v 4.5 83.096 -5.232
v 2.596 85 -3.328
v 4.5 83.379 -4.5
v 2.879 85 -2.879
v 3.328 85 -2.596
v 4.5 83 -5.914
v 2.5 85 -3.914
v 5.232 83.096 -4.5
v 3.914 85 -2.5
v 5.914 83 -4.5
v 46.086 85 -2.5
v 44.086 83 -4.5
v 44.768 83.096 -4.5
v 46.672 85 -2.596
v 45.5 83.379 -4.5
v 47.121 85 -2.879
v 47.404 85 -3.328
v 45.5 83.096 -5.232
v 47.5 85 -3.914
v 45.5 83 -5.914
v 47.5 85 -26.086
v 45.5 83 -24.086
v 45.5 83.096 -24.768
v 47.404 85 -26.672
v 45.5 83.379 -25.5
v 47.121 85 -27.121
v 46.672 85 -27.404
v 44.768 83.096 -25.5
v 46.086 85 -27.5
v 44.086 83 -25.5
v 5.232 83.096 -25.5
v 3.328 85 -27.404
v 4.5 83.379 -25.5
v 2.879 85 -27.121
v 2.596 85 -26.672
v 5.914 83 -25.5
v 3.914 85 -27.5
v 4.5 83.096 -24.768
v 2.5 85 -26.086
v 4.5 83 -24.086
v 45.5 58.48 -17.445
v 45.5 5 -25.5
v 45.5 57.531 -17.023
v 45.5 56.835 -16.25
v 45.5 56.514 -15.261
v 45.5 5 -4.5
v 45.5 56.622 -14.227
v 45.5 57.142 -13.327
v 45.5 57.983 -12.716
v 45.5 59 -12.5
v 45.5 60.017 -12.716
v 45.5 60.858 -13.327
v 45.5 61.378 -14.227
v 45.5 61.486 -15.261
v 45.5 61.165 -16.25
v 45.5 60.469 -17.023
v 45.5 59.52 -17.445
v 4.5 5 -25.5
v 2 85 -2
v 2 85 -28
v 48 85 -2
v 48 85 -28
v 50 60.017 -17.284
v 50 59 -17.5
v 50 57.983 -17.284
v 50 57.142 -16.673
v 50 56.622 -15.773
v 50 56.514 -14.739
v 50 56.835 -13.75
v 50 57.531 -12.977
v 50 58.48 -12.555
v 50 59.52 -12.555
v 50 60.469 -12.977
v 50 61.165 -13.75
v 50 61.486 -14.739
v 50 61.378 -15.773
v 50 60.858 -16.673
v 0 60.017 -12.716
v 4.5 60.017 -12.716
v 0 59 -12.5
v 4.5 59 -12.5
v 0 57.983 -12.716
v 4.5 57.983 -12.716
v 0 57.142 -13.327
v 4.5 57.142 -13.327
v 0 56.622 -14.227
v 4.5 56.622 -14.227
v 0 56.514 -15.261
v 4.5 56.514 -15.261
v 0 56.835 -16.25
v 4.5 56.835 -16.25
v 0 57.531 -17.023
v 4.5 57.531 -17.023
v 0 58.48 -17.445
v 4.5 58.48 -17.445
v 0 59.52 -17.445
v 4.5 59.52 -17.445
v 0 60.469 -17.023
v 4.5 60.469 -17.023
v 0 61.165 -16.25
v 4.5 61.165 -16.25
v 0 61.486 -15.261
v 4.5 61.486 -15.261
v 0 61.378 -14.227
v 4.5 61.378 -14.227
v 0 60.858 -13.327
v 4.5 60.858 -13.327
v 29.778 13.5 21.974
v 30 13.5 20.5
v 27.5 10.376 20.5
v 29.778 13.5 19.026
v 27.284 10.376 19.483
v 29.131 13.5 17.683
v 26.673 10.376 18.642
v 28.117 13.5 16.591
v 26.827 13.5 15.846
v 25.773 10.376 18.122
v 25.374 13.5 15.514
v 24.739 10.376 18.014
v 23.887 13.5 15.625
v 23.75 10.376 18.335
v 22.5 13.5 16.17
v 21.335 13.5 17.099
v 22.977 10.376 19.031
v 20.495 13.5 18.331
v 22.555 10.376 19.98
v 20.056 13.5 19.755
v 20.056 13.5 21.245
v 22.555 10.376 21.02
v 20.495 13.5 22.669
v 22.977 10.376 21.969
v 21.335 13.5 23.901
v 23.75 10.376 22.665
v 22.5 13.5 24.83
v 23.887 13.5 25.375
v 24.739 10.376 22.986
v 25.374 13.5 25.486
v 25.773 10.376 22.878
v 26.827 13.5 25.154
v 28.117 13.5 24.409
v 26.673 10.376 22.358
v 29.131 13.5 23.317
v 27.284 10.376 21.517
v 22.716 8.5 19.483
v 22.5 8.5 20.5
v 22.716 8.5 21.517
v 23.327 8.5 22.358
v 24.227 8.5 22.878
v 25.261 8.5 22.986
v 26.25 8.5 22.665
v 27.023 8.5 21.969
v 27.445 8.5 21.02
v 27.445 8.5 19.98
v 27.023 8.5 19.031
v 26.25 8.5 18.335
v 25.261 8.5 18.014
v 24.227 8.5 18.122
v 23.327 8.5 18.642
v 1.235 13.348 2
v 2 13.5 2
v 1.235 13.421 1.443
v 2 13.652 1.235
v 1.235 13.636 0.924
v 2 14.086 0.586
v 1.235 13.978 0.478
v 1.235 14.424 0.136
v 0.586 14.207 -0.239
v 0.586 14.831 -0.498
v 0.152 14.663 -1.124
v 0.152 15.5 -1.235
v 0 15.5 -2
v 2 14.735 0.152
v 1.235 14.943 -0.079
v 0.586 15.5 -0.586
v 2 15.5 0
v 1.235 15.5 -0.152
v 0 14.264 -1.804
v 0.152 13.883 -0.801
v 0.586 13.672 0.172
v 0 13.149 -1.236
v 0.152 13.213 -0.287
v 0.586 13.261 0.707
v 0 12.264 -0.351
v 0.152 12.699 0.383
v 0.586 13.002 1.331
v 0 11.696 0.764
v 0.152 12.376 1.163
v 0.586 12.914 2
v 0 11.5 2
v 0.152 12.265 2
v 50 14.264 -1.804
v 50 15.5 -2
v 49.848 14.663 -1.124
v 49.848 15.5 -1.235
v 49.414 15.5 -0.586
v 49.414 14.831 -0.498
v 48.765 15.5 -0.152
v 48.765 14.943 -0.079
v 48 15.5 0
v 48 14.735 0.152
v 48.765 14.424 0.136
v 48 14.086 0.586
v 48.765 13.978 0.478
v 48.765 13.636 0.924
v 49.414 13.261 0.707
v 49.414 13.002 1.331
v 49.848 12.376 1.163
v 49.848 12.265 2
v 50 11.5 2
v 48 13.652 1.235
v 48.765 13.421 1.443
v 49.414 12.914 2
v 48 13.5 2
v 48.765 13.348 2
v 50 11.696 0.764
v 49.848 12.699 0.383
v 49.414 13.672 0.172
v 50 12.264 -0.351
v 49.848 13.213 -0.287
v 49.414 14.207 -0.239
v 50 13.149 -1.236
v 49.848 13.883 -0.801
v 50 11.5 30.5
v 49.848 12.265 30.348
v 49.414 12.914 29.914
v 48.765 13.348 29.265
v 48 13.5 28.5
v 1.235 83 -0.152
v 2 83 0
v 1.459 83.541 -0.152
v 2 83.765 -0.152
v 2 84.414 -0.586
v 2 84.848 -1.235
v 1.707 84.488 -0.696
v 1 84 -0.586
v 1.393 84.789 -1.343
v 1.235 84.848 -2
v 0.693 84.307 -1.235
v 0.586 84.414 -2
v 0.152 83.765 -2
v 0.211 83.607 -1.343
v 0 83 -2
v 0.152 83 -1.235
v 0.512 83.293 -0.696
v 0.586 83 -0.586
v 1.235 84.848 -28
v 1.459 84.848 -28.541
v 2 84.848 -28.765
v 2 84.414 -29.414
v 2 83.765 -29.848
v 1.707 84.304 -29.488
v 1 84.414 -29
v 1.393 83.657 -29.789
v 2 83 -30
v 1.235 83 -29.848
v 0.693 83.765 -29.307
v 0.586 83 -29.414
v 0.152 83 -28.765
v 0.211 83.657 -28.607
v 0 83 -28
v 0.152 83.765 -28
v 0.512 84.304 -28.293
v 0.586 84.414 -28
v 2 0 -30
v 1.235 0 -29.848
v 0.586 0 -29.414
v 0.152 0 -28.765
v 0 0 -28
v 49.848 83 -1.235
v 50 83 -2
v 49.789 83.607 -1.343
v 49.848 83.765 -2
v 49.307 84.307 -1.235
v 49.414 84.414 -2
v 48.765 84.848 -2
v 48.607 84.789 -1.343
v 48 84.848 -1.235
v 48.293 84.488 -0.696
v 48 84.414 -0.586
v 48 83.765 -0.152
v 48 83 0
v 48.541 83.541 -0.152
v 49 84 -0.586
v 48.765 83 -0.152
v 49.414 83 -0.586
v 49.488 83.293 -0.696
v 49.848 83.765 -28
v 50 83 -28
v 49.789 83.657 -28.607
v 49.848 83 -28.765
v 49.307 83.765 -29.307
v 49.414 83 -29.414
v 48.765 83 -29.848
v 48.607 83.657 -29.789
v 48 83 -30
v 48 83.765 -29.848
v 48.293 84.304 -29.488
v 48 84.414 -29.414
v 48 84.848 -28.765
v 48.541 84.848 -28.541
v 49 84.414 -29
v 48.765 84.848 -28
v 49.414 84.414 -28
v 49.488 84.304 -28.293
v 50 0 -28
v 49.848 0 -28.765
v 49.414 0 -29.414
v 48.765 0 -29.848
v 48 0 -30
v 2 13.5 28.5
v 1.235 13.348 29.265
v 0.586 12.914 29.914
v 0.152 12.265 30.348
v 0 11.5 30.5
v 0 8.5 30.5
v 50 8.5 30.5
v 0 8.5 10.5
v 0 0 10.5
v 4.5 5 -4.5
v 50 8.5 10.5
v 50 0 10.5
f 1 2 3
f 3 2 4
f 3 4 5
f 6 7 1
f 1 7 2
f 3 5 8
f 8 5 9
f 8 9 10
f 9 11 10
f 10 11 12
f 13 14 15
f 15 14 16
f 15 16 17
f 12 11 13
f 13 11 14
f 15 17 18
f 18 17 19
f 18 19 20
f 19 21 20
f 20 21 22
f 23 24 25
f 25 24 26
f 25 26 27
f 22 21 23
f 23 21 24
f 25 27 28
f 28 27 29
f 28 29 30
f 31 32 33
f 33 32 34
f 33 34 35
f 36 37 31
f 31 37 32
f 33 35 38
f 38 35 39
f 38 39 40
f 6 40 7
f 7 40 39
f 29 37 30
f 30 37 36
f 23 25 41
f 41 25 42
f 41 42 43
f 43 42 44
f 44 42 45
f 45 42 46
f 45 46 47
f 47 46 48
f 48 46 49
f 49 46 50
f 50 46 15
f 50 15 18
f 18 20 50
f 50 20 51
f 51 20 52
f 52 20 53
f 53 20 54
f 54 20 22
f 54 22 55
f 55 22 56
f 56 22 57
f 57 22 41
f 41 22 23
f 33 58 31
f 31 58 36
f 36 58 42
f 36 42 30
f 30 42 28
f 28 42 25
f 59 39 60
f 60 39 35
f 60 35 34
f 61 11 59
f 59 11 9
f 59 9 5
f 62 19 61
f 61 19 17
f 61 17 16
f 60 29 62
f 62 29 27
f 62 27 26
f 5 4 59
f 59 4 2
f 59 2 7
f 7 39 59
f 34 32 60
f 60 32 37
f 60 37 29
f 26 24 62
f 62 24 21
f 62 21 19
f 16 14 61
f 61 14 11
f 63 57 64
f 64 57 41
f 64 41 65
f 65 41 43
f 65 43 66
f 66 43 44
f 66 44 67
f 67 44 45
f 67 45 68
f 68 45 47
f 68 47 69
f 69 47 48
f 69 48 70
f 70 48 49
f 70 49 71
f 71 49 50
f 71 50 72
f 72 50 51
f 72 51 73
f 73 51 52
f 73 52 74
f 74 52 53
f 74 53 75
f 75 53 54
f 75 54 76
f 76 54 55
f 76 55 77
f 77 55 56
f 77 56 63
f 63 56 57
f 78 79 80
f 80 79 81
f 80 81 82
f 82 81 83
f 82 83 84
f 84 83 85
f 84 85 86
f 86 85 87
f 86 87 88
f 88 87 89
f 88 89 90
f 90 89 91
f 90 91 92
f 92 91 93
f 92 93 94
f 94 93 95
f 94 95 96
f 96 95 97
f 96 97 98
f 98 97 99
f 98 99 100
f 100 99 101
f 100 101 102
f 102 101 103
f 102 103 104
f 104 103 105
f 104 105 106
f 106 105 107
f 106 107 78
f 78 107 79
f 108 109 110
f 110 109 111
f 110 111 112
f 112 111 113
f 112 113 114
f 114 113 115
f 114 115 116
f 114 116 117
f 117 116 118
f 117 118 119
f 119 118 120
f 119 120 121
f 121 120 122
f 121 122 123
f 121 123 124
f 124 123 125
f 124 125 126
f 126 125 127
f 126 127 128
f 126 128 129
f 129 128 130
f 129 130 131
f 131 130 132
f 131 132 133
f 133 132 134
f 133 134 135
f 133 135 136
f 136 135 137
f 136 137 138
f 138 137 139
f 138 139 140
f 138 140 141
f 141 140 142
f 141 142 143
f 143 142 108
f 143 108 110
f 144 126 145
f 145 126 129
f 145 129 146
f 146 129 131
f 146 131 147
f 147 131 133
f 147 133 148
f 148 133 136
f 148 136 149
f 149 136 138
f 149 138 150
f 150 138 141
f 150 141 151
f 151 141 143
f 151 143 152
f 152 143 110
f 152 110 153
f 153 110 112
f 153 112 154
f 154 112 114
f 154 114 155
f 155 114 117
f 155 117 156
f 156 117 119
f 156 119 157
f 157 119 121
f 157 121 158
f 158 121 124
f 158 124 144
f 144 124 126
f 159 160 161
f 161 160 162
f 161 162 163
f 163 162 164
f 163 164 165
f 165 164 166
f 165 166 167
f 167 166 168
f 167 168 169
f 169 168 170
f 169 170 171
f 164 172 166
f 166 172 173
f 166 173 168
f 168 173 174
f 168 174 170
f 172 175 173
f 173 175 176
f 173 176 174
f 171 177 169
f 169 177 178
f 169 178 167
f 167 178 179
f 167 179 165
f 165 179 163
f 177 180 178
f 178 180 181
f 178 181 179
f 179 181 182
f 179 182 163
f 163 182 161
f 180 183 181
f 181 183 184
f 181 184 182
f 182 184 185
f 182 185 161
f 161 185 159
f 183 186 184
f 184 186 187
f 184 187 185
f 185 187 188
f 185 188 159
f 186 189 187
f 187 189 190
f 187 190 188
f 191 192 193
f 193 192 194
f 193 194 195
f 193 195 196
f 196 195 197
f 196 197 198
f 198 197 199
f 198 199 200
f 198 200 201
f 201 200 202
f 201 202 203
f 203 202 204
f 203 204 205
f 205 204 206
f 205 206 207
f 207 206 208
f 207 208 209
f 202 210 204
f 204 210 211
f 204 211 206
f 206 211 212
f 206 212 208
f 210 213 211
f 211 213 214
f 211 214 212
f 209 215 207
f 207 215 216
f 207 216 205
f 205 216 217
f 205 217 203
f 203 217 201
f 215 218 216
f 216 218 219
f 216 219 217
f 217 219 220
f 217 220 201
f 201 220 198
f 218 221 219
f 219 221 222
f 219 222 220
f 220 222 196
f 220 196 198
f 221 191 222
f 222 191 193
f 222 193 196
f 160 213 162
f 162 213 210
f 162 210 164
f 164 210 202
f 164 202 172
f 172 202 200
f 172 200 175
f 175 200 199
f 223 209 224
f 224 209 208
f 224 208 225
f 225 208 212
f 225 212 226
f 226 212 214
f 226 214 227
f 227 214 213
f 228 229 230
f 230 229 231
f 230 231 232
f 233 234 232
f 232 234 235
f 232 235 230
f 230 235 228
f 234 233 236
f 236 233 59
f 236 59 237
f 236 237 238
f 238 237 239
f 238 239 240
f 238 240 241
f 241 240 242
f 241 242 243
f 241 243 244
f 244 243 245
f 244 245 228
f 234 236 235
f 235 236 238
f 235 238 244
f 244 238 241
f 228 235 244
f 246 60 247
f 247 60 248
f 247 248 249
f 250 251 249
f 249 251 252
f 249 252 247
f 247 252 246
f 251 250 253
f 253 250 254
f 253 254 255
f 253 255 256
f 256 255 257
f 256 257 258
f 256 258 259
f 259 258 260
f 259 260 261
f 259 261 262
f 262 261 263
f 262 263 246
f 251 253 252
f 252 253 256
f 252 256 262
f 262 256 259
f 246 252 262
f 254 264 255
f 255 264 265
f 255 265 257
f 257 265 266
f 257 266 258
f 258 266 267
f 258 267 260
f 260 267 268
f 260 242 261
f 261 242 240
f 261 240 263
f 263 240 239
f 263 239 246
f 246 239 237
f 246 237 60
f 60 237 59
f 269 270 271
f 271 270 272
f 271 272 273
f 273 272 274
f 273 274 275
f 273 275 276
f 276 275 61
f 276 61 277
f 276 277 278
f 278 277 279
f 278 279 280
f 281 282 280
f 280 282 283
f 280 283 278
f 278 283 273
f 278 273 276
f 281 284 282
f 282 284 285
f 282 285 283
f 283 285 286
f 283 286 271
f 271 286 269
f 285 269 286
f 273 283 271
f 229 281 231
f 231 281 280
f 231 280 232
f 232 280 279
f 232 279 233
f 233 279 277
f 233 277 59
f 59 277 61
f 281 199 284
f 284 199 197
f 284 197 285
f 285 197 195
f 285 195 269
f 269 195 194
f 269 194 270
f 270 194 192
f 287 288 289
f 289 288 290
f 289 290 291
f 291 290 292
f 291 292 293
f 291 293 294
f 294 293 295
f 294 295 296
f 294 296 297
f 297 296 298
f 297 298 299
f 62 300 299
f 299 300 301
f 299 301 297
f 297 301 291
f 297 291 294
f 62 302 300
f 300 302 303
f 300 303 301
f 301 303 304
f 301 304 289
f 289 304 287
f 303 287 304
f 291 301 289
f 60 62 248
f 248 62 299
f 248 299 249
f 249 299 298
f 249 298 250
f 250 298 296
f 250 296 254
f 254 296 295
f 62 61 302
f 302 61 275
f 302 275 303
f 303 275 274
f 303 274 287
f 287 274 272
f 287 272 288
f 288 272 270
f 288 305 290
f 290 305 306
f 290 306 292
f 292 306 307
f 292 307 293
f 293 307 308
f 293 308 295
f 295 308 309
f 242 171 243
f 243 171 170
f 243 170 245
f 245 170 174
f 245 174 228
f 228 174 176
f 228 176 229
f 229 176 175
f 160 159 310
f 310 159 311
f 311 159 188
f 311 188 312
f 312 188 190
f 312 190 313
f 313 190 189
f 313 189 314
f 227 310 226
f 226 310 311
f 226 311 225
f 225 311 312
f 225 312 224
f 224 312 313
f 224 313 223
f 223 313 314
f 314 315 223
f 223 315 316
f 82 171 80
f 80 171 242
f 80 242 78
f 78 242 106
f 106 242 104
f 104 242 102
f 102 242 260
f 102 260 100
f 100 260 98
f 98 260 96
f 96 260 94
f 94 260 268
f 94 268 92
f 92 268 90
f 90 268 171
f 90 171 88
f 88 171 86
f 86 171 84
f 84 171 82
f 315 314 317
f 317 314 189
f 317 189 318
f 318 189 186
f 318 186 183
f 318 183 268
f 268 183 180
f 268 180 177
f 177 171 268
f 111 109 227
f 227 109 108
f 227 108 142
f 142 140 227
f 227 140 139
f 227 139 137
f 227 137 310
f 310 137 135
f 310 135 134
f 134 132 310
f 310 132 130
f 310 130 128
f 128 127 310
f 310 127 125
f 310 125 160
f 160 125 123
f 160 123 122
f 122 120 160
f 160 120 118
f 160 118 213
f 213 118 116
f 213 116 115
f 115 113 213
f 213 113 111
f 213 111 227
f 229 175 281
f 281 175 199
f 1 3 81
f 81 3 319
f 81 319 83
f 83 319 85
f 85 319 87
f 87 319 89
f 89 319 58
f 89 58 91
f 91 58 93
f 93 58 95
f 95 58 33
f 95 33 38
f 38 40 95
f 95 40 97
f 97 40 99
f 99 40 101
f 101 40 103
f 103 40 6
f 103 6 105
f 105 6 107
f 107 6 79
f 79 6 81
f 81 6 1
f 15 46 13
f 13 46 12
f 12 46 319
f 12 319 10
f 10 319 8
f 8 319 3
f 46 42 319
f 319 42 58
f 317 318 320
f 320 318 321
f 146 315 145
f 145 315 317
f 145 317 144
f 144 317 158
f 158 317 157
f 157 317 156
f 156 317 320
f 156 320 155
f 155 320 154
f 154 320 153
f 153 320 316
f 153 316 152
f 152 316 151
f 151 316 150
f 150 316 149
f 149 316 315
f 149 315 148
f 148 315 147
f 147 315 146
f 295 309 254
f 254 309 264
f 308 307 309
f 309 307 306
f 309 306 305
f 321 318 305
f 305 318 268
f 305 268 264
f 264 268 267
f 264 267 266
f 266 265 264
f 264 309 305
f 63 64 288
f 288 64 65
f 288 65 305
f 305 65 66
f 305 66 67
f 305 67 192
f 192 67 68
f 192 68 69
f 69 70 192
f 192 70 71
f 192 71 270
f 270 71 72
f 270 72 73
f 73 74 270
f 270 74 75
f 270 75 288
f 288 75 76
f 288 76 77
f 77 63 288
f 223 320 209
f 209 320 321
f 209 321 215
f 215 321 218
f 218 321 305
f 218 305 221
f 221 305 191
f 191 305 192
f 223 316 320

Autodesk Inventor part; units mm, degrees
ref_plane "YZ Plane" through (0, 0, 0) normal (1, 0, 0) x (0, 1, 0)
ref_plane "XZ Plane" through (0, 0, 0) normal (0, 1, 0) x (-1, 0, 0)
ref_plane "XY Plane" through (0, 0, 0) normal (0, 0, 1) x (1, 0, 0)
sketch "Sketch1" plane through (0, 0, 0) normal (1, 0, 0) x (0, 1, 0)
  line L0 (0, 0) -> (0, -30)
  line L1 (13.5, 0) -> (30, 0) construction
  line L2 (0, -30) -> (85, -30)
  line L3 (13.5, 0) -> (85, 0)
  line L4 (85, 0) -> (85, -30)
  line L5 (0, 0) -> (0, 10.5)
  line L6 (13.5, 0) -> (14, 0) construction
  line L7 (0, 10.5) -> (8.5, 10.5)
  line L8 (8.5, 10.5) -> (8.5, 30.5)
  line L9 (8.5, 30.5) -> (13.5, 30.5)
  line L10 (13.5, 30.5) -> (13.5, 0)
  point P0 (0, -15)
  dimension "d0" = 30
  dimension "d2" = 85
  dimension "d4" = 10.5
  dimension "d6" = 8.5
  dimension "d7" = 20
  dimension "d8" = 5
  dimension "d47" = 30
extrude "Extrusion1" add sketch "Sketch1" along normal blind 50
sketch "Sketch2" plane through (0, 85, 0) normal (0, 1, 0) x (1, 0, 0)
  line L0 (4.5, 4.5) -> (4.5, 25.5)
  line L1 (4.5, 4.5) -> (25.5, 4.5) construction
  line L2 (4.5, 25.5) -> (45.5, 25.5)
  line L3 (45.5, 25.5) -> (45.5, 4.5)
  line L4 (45.5, 4.5) -> (4.5, 4.5)
  line L5 (50, 30) -> (50, 0) projected
  point P0 (0, 0)
  dimension "d13" = 21
  dimension "d14" = 90
  dimension "d15" = 41
  dimension "d16" = 90
  dimension "d17" = 21
  dimension "d18" = 90
  dimension "d46" = 4.5
  dimension "d48" = 90
  dimension "d49" = 4.5
extrude "Extrusion2" cut sketch "Sketch2" against normal blind 80
fillet "Fillet1" radius 2 12 edges at (50, 85, -15) (25, 85, 0) (25, 85, -30) (0, 85, -15) (50, 49.25, 0) (50, 42.5, -30) (0, 49.25, 0) (0, 42.5, -30) (0, 13.5, 15.25) (25, 13.5, 30.5) (50, 13.5, 15.25) (25, 13.5, 0)
sketch "Sketch4" plane through (2, 13.5, 2) normal (0, 1, 0) x (1, 0, 0)
  line L0 (-2, -28.5) -> (48, -28.5) projected
  point P0 (-2, 2)
  point P1 (23, -18.5)
  point P2 (23, -28.5)
  dimension "d37" = 10
hole "Hole1" at (25, 13.5, 20.5) direction (0, -1, 0) diameter 5 end through all countersink diameter 10 countersink angle 77.33
sketch "Sketch6" plane through (50, 0, 0) normal (1, 0, 0) x (0, 0, -1)
  line L0 (-10.5, 0) -> (28, 0) projected
  point P0 (0, 0)
  point P1 (15, 59)
  point P2 (15, 0)
  dimension "d45" = 59
hole "Hole2" at (50, 59, -15) direction (-1, 0, 0) diameter 5 end through all
chamfer "Chamfer2" distance 2 angle 45 4 edges at (4.5, 85, -15) (25, 85, -25.5) (45.5, 85, -15) (25, 85, -4.5)
fillet "Fillet3" radius 2 4 edges at (3.5, 84, -26.5) (46.5, 84, -26.5) (46.5, 84, -3.5) (3.5, 84, -3.5)
properties part number "flexibler_standfuß_breit_v0.9"
